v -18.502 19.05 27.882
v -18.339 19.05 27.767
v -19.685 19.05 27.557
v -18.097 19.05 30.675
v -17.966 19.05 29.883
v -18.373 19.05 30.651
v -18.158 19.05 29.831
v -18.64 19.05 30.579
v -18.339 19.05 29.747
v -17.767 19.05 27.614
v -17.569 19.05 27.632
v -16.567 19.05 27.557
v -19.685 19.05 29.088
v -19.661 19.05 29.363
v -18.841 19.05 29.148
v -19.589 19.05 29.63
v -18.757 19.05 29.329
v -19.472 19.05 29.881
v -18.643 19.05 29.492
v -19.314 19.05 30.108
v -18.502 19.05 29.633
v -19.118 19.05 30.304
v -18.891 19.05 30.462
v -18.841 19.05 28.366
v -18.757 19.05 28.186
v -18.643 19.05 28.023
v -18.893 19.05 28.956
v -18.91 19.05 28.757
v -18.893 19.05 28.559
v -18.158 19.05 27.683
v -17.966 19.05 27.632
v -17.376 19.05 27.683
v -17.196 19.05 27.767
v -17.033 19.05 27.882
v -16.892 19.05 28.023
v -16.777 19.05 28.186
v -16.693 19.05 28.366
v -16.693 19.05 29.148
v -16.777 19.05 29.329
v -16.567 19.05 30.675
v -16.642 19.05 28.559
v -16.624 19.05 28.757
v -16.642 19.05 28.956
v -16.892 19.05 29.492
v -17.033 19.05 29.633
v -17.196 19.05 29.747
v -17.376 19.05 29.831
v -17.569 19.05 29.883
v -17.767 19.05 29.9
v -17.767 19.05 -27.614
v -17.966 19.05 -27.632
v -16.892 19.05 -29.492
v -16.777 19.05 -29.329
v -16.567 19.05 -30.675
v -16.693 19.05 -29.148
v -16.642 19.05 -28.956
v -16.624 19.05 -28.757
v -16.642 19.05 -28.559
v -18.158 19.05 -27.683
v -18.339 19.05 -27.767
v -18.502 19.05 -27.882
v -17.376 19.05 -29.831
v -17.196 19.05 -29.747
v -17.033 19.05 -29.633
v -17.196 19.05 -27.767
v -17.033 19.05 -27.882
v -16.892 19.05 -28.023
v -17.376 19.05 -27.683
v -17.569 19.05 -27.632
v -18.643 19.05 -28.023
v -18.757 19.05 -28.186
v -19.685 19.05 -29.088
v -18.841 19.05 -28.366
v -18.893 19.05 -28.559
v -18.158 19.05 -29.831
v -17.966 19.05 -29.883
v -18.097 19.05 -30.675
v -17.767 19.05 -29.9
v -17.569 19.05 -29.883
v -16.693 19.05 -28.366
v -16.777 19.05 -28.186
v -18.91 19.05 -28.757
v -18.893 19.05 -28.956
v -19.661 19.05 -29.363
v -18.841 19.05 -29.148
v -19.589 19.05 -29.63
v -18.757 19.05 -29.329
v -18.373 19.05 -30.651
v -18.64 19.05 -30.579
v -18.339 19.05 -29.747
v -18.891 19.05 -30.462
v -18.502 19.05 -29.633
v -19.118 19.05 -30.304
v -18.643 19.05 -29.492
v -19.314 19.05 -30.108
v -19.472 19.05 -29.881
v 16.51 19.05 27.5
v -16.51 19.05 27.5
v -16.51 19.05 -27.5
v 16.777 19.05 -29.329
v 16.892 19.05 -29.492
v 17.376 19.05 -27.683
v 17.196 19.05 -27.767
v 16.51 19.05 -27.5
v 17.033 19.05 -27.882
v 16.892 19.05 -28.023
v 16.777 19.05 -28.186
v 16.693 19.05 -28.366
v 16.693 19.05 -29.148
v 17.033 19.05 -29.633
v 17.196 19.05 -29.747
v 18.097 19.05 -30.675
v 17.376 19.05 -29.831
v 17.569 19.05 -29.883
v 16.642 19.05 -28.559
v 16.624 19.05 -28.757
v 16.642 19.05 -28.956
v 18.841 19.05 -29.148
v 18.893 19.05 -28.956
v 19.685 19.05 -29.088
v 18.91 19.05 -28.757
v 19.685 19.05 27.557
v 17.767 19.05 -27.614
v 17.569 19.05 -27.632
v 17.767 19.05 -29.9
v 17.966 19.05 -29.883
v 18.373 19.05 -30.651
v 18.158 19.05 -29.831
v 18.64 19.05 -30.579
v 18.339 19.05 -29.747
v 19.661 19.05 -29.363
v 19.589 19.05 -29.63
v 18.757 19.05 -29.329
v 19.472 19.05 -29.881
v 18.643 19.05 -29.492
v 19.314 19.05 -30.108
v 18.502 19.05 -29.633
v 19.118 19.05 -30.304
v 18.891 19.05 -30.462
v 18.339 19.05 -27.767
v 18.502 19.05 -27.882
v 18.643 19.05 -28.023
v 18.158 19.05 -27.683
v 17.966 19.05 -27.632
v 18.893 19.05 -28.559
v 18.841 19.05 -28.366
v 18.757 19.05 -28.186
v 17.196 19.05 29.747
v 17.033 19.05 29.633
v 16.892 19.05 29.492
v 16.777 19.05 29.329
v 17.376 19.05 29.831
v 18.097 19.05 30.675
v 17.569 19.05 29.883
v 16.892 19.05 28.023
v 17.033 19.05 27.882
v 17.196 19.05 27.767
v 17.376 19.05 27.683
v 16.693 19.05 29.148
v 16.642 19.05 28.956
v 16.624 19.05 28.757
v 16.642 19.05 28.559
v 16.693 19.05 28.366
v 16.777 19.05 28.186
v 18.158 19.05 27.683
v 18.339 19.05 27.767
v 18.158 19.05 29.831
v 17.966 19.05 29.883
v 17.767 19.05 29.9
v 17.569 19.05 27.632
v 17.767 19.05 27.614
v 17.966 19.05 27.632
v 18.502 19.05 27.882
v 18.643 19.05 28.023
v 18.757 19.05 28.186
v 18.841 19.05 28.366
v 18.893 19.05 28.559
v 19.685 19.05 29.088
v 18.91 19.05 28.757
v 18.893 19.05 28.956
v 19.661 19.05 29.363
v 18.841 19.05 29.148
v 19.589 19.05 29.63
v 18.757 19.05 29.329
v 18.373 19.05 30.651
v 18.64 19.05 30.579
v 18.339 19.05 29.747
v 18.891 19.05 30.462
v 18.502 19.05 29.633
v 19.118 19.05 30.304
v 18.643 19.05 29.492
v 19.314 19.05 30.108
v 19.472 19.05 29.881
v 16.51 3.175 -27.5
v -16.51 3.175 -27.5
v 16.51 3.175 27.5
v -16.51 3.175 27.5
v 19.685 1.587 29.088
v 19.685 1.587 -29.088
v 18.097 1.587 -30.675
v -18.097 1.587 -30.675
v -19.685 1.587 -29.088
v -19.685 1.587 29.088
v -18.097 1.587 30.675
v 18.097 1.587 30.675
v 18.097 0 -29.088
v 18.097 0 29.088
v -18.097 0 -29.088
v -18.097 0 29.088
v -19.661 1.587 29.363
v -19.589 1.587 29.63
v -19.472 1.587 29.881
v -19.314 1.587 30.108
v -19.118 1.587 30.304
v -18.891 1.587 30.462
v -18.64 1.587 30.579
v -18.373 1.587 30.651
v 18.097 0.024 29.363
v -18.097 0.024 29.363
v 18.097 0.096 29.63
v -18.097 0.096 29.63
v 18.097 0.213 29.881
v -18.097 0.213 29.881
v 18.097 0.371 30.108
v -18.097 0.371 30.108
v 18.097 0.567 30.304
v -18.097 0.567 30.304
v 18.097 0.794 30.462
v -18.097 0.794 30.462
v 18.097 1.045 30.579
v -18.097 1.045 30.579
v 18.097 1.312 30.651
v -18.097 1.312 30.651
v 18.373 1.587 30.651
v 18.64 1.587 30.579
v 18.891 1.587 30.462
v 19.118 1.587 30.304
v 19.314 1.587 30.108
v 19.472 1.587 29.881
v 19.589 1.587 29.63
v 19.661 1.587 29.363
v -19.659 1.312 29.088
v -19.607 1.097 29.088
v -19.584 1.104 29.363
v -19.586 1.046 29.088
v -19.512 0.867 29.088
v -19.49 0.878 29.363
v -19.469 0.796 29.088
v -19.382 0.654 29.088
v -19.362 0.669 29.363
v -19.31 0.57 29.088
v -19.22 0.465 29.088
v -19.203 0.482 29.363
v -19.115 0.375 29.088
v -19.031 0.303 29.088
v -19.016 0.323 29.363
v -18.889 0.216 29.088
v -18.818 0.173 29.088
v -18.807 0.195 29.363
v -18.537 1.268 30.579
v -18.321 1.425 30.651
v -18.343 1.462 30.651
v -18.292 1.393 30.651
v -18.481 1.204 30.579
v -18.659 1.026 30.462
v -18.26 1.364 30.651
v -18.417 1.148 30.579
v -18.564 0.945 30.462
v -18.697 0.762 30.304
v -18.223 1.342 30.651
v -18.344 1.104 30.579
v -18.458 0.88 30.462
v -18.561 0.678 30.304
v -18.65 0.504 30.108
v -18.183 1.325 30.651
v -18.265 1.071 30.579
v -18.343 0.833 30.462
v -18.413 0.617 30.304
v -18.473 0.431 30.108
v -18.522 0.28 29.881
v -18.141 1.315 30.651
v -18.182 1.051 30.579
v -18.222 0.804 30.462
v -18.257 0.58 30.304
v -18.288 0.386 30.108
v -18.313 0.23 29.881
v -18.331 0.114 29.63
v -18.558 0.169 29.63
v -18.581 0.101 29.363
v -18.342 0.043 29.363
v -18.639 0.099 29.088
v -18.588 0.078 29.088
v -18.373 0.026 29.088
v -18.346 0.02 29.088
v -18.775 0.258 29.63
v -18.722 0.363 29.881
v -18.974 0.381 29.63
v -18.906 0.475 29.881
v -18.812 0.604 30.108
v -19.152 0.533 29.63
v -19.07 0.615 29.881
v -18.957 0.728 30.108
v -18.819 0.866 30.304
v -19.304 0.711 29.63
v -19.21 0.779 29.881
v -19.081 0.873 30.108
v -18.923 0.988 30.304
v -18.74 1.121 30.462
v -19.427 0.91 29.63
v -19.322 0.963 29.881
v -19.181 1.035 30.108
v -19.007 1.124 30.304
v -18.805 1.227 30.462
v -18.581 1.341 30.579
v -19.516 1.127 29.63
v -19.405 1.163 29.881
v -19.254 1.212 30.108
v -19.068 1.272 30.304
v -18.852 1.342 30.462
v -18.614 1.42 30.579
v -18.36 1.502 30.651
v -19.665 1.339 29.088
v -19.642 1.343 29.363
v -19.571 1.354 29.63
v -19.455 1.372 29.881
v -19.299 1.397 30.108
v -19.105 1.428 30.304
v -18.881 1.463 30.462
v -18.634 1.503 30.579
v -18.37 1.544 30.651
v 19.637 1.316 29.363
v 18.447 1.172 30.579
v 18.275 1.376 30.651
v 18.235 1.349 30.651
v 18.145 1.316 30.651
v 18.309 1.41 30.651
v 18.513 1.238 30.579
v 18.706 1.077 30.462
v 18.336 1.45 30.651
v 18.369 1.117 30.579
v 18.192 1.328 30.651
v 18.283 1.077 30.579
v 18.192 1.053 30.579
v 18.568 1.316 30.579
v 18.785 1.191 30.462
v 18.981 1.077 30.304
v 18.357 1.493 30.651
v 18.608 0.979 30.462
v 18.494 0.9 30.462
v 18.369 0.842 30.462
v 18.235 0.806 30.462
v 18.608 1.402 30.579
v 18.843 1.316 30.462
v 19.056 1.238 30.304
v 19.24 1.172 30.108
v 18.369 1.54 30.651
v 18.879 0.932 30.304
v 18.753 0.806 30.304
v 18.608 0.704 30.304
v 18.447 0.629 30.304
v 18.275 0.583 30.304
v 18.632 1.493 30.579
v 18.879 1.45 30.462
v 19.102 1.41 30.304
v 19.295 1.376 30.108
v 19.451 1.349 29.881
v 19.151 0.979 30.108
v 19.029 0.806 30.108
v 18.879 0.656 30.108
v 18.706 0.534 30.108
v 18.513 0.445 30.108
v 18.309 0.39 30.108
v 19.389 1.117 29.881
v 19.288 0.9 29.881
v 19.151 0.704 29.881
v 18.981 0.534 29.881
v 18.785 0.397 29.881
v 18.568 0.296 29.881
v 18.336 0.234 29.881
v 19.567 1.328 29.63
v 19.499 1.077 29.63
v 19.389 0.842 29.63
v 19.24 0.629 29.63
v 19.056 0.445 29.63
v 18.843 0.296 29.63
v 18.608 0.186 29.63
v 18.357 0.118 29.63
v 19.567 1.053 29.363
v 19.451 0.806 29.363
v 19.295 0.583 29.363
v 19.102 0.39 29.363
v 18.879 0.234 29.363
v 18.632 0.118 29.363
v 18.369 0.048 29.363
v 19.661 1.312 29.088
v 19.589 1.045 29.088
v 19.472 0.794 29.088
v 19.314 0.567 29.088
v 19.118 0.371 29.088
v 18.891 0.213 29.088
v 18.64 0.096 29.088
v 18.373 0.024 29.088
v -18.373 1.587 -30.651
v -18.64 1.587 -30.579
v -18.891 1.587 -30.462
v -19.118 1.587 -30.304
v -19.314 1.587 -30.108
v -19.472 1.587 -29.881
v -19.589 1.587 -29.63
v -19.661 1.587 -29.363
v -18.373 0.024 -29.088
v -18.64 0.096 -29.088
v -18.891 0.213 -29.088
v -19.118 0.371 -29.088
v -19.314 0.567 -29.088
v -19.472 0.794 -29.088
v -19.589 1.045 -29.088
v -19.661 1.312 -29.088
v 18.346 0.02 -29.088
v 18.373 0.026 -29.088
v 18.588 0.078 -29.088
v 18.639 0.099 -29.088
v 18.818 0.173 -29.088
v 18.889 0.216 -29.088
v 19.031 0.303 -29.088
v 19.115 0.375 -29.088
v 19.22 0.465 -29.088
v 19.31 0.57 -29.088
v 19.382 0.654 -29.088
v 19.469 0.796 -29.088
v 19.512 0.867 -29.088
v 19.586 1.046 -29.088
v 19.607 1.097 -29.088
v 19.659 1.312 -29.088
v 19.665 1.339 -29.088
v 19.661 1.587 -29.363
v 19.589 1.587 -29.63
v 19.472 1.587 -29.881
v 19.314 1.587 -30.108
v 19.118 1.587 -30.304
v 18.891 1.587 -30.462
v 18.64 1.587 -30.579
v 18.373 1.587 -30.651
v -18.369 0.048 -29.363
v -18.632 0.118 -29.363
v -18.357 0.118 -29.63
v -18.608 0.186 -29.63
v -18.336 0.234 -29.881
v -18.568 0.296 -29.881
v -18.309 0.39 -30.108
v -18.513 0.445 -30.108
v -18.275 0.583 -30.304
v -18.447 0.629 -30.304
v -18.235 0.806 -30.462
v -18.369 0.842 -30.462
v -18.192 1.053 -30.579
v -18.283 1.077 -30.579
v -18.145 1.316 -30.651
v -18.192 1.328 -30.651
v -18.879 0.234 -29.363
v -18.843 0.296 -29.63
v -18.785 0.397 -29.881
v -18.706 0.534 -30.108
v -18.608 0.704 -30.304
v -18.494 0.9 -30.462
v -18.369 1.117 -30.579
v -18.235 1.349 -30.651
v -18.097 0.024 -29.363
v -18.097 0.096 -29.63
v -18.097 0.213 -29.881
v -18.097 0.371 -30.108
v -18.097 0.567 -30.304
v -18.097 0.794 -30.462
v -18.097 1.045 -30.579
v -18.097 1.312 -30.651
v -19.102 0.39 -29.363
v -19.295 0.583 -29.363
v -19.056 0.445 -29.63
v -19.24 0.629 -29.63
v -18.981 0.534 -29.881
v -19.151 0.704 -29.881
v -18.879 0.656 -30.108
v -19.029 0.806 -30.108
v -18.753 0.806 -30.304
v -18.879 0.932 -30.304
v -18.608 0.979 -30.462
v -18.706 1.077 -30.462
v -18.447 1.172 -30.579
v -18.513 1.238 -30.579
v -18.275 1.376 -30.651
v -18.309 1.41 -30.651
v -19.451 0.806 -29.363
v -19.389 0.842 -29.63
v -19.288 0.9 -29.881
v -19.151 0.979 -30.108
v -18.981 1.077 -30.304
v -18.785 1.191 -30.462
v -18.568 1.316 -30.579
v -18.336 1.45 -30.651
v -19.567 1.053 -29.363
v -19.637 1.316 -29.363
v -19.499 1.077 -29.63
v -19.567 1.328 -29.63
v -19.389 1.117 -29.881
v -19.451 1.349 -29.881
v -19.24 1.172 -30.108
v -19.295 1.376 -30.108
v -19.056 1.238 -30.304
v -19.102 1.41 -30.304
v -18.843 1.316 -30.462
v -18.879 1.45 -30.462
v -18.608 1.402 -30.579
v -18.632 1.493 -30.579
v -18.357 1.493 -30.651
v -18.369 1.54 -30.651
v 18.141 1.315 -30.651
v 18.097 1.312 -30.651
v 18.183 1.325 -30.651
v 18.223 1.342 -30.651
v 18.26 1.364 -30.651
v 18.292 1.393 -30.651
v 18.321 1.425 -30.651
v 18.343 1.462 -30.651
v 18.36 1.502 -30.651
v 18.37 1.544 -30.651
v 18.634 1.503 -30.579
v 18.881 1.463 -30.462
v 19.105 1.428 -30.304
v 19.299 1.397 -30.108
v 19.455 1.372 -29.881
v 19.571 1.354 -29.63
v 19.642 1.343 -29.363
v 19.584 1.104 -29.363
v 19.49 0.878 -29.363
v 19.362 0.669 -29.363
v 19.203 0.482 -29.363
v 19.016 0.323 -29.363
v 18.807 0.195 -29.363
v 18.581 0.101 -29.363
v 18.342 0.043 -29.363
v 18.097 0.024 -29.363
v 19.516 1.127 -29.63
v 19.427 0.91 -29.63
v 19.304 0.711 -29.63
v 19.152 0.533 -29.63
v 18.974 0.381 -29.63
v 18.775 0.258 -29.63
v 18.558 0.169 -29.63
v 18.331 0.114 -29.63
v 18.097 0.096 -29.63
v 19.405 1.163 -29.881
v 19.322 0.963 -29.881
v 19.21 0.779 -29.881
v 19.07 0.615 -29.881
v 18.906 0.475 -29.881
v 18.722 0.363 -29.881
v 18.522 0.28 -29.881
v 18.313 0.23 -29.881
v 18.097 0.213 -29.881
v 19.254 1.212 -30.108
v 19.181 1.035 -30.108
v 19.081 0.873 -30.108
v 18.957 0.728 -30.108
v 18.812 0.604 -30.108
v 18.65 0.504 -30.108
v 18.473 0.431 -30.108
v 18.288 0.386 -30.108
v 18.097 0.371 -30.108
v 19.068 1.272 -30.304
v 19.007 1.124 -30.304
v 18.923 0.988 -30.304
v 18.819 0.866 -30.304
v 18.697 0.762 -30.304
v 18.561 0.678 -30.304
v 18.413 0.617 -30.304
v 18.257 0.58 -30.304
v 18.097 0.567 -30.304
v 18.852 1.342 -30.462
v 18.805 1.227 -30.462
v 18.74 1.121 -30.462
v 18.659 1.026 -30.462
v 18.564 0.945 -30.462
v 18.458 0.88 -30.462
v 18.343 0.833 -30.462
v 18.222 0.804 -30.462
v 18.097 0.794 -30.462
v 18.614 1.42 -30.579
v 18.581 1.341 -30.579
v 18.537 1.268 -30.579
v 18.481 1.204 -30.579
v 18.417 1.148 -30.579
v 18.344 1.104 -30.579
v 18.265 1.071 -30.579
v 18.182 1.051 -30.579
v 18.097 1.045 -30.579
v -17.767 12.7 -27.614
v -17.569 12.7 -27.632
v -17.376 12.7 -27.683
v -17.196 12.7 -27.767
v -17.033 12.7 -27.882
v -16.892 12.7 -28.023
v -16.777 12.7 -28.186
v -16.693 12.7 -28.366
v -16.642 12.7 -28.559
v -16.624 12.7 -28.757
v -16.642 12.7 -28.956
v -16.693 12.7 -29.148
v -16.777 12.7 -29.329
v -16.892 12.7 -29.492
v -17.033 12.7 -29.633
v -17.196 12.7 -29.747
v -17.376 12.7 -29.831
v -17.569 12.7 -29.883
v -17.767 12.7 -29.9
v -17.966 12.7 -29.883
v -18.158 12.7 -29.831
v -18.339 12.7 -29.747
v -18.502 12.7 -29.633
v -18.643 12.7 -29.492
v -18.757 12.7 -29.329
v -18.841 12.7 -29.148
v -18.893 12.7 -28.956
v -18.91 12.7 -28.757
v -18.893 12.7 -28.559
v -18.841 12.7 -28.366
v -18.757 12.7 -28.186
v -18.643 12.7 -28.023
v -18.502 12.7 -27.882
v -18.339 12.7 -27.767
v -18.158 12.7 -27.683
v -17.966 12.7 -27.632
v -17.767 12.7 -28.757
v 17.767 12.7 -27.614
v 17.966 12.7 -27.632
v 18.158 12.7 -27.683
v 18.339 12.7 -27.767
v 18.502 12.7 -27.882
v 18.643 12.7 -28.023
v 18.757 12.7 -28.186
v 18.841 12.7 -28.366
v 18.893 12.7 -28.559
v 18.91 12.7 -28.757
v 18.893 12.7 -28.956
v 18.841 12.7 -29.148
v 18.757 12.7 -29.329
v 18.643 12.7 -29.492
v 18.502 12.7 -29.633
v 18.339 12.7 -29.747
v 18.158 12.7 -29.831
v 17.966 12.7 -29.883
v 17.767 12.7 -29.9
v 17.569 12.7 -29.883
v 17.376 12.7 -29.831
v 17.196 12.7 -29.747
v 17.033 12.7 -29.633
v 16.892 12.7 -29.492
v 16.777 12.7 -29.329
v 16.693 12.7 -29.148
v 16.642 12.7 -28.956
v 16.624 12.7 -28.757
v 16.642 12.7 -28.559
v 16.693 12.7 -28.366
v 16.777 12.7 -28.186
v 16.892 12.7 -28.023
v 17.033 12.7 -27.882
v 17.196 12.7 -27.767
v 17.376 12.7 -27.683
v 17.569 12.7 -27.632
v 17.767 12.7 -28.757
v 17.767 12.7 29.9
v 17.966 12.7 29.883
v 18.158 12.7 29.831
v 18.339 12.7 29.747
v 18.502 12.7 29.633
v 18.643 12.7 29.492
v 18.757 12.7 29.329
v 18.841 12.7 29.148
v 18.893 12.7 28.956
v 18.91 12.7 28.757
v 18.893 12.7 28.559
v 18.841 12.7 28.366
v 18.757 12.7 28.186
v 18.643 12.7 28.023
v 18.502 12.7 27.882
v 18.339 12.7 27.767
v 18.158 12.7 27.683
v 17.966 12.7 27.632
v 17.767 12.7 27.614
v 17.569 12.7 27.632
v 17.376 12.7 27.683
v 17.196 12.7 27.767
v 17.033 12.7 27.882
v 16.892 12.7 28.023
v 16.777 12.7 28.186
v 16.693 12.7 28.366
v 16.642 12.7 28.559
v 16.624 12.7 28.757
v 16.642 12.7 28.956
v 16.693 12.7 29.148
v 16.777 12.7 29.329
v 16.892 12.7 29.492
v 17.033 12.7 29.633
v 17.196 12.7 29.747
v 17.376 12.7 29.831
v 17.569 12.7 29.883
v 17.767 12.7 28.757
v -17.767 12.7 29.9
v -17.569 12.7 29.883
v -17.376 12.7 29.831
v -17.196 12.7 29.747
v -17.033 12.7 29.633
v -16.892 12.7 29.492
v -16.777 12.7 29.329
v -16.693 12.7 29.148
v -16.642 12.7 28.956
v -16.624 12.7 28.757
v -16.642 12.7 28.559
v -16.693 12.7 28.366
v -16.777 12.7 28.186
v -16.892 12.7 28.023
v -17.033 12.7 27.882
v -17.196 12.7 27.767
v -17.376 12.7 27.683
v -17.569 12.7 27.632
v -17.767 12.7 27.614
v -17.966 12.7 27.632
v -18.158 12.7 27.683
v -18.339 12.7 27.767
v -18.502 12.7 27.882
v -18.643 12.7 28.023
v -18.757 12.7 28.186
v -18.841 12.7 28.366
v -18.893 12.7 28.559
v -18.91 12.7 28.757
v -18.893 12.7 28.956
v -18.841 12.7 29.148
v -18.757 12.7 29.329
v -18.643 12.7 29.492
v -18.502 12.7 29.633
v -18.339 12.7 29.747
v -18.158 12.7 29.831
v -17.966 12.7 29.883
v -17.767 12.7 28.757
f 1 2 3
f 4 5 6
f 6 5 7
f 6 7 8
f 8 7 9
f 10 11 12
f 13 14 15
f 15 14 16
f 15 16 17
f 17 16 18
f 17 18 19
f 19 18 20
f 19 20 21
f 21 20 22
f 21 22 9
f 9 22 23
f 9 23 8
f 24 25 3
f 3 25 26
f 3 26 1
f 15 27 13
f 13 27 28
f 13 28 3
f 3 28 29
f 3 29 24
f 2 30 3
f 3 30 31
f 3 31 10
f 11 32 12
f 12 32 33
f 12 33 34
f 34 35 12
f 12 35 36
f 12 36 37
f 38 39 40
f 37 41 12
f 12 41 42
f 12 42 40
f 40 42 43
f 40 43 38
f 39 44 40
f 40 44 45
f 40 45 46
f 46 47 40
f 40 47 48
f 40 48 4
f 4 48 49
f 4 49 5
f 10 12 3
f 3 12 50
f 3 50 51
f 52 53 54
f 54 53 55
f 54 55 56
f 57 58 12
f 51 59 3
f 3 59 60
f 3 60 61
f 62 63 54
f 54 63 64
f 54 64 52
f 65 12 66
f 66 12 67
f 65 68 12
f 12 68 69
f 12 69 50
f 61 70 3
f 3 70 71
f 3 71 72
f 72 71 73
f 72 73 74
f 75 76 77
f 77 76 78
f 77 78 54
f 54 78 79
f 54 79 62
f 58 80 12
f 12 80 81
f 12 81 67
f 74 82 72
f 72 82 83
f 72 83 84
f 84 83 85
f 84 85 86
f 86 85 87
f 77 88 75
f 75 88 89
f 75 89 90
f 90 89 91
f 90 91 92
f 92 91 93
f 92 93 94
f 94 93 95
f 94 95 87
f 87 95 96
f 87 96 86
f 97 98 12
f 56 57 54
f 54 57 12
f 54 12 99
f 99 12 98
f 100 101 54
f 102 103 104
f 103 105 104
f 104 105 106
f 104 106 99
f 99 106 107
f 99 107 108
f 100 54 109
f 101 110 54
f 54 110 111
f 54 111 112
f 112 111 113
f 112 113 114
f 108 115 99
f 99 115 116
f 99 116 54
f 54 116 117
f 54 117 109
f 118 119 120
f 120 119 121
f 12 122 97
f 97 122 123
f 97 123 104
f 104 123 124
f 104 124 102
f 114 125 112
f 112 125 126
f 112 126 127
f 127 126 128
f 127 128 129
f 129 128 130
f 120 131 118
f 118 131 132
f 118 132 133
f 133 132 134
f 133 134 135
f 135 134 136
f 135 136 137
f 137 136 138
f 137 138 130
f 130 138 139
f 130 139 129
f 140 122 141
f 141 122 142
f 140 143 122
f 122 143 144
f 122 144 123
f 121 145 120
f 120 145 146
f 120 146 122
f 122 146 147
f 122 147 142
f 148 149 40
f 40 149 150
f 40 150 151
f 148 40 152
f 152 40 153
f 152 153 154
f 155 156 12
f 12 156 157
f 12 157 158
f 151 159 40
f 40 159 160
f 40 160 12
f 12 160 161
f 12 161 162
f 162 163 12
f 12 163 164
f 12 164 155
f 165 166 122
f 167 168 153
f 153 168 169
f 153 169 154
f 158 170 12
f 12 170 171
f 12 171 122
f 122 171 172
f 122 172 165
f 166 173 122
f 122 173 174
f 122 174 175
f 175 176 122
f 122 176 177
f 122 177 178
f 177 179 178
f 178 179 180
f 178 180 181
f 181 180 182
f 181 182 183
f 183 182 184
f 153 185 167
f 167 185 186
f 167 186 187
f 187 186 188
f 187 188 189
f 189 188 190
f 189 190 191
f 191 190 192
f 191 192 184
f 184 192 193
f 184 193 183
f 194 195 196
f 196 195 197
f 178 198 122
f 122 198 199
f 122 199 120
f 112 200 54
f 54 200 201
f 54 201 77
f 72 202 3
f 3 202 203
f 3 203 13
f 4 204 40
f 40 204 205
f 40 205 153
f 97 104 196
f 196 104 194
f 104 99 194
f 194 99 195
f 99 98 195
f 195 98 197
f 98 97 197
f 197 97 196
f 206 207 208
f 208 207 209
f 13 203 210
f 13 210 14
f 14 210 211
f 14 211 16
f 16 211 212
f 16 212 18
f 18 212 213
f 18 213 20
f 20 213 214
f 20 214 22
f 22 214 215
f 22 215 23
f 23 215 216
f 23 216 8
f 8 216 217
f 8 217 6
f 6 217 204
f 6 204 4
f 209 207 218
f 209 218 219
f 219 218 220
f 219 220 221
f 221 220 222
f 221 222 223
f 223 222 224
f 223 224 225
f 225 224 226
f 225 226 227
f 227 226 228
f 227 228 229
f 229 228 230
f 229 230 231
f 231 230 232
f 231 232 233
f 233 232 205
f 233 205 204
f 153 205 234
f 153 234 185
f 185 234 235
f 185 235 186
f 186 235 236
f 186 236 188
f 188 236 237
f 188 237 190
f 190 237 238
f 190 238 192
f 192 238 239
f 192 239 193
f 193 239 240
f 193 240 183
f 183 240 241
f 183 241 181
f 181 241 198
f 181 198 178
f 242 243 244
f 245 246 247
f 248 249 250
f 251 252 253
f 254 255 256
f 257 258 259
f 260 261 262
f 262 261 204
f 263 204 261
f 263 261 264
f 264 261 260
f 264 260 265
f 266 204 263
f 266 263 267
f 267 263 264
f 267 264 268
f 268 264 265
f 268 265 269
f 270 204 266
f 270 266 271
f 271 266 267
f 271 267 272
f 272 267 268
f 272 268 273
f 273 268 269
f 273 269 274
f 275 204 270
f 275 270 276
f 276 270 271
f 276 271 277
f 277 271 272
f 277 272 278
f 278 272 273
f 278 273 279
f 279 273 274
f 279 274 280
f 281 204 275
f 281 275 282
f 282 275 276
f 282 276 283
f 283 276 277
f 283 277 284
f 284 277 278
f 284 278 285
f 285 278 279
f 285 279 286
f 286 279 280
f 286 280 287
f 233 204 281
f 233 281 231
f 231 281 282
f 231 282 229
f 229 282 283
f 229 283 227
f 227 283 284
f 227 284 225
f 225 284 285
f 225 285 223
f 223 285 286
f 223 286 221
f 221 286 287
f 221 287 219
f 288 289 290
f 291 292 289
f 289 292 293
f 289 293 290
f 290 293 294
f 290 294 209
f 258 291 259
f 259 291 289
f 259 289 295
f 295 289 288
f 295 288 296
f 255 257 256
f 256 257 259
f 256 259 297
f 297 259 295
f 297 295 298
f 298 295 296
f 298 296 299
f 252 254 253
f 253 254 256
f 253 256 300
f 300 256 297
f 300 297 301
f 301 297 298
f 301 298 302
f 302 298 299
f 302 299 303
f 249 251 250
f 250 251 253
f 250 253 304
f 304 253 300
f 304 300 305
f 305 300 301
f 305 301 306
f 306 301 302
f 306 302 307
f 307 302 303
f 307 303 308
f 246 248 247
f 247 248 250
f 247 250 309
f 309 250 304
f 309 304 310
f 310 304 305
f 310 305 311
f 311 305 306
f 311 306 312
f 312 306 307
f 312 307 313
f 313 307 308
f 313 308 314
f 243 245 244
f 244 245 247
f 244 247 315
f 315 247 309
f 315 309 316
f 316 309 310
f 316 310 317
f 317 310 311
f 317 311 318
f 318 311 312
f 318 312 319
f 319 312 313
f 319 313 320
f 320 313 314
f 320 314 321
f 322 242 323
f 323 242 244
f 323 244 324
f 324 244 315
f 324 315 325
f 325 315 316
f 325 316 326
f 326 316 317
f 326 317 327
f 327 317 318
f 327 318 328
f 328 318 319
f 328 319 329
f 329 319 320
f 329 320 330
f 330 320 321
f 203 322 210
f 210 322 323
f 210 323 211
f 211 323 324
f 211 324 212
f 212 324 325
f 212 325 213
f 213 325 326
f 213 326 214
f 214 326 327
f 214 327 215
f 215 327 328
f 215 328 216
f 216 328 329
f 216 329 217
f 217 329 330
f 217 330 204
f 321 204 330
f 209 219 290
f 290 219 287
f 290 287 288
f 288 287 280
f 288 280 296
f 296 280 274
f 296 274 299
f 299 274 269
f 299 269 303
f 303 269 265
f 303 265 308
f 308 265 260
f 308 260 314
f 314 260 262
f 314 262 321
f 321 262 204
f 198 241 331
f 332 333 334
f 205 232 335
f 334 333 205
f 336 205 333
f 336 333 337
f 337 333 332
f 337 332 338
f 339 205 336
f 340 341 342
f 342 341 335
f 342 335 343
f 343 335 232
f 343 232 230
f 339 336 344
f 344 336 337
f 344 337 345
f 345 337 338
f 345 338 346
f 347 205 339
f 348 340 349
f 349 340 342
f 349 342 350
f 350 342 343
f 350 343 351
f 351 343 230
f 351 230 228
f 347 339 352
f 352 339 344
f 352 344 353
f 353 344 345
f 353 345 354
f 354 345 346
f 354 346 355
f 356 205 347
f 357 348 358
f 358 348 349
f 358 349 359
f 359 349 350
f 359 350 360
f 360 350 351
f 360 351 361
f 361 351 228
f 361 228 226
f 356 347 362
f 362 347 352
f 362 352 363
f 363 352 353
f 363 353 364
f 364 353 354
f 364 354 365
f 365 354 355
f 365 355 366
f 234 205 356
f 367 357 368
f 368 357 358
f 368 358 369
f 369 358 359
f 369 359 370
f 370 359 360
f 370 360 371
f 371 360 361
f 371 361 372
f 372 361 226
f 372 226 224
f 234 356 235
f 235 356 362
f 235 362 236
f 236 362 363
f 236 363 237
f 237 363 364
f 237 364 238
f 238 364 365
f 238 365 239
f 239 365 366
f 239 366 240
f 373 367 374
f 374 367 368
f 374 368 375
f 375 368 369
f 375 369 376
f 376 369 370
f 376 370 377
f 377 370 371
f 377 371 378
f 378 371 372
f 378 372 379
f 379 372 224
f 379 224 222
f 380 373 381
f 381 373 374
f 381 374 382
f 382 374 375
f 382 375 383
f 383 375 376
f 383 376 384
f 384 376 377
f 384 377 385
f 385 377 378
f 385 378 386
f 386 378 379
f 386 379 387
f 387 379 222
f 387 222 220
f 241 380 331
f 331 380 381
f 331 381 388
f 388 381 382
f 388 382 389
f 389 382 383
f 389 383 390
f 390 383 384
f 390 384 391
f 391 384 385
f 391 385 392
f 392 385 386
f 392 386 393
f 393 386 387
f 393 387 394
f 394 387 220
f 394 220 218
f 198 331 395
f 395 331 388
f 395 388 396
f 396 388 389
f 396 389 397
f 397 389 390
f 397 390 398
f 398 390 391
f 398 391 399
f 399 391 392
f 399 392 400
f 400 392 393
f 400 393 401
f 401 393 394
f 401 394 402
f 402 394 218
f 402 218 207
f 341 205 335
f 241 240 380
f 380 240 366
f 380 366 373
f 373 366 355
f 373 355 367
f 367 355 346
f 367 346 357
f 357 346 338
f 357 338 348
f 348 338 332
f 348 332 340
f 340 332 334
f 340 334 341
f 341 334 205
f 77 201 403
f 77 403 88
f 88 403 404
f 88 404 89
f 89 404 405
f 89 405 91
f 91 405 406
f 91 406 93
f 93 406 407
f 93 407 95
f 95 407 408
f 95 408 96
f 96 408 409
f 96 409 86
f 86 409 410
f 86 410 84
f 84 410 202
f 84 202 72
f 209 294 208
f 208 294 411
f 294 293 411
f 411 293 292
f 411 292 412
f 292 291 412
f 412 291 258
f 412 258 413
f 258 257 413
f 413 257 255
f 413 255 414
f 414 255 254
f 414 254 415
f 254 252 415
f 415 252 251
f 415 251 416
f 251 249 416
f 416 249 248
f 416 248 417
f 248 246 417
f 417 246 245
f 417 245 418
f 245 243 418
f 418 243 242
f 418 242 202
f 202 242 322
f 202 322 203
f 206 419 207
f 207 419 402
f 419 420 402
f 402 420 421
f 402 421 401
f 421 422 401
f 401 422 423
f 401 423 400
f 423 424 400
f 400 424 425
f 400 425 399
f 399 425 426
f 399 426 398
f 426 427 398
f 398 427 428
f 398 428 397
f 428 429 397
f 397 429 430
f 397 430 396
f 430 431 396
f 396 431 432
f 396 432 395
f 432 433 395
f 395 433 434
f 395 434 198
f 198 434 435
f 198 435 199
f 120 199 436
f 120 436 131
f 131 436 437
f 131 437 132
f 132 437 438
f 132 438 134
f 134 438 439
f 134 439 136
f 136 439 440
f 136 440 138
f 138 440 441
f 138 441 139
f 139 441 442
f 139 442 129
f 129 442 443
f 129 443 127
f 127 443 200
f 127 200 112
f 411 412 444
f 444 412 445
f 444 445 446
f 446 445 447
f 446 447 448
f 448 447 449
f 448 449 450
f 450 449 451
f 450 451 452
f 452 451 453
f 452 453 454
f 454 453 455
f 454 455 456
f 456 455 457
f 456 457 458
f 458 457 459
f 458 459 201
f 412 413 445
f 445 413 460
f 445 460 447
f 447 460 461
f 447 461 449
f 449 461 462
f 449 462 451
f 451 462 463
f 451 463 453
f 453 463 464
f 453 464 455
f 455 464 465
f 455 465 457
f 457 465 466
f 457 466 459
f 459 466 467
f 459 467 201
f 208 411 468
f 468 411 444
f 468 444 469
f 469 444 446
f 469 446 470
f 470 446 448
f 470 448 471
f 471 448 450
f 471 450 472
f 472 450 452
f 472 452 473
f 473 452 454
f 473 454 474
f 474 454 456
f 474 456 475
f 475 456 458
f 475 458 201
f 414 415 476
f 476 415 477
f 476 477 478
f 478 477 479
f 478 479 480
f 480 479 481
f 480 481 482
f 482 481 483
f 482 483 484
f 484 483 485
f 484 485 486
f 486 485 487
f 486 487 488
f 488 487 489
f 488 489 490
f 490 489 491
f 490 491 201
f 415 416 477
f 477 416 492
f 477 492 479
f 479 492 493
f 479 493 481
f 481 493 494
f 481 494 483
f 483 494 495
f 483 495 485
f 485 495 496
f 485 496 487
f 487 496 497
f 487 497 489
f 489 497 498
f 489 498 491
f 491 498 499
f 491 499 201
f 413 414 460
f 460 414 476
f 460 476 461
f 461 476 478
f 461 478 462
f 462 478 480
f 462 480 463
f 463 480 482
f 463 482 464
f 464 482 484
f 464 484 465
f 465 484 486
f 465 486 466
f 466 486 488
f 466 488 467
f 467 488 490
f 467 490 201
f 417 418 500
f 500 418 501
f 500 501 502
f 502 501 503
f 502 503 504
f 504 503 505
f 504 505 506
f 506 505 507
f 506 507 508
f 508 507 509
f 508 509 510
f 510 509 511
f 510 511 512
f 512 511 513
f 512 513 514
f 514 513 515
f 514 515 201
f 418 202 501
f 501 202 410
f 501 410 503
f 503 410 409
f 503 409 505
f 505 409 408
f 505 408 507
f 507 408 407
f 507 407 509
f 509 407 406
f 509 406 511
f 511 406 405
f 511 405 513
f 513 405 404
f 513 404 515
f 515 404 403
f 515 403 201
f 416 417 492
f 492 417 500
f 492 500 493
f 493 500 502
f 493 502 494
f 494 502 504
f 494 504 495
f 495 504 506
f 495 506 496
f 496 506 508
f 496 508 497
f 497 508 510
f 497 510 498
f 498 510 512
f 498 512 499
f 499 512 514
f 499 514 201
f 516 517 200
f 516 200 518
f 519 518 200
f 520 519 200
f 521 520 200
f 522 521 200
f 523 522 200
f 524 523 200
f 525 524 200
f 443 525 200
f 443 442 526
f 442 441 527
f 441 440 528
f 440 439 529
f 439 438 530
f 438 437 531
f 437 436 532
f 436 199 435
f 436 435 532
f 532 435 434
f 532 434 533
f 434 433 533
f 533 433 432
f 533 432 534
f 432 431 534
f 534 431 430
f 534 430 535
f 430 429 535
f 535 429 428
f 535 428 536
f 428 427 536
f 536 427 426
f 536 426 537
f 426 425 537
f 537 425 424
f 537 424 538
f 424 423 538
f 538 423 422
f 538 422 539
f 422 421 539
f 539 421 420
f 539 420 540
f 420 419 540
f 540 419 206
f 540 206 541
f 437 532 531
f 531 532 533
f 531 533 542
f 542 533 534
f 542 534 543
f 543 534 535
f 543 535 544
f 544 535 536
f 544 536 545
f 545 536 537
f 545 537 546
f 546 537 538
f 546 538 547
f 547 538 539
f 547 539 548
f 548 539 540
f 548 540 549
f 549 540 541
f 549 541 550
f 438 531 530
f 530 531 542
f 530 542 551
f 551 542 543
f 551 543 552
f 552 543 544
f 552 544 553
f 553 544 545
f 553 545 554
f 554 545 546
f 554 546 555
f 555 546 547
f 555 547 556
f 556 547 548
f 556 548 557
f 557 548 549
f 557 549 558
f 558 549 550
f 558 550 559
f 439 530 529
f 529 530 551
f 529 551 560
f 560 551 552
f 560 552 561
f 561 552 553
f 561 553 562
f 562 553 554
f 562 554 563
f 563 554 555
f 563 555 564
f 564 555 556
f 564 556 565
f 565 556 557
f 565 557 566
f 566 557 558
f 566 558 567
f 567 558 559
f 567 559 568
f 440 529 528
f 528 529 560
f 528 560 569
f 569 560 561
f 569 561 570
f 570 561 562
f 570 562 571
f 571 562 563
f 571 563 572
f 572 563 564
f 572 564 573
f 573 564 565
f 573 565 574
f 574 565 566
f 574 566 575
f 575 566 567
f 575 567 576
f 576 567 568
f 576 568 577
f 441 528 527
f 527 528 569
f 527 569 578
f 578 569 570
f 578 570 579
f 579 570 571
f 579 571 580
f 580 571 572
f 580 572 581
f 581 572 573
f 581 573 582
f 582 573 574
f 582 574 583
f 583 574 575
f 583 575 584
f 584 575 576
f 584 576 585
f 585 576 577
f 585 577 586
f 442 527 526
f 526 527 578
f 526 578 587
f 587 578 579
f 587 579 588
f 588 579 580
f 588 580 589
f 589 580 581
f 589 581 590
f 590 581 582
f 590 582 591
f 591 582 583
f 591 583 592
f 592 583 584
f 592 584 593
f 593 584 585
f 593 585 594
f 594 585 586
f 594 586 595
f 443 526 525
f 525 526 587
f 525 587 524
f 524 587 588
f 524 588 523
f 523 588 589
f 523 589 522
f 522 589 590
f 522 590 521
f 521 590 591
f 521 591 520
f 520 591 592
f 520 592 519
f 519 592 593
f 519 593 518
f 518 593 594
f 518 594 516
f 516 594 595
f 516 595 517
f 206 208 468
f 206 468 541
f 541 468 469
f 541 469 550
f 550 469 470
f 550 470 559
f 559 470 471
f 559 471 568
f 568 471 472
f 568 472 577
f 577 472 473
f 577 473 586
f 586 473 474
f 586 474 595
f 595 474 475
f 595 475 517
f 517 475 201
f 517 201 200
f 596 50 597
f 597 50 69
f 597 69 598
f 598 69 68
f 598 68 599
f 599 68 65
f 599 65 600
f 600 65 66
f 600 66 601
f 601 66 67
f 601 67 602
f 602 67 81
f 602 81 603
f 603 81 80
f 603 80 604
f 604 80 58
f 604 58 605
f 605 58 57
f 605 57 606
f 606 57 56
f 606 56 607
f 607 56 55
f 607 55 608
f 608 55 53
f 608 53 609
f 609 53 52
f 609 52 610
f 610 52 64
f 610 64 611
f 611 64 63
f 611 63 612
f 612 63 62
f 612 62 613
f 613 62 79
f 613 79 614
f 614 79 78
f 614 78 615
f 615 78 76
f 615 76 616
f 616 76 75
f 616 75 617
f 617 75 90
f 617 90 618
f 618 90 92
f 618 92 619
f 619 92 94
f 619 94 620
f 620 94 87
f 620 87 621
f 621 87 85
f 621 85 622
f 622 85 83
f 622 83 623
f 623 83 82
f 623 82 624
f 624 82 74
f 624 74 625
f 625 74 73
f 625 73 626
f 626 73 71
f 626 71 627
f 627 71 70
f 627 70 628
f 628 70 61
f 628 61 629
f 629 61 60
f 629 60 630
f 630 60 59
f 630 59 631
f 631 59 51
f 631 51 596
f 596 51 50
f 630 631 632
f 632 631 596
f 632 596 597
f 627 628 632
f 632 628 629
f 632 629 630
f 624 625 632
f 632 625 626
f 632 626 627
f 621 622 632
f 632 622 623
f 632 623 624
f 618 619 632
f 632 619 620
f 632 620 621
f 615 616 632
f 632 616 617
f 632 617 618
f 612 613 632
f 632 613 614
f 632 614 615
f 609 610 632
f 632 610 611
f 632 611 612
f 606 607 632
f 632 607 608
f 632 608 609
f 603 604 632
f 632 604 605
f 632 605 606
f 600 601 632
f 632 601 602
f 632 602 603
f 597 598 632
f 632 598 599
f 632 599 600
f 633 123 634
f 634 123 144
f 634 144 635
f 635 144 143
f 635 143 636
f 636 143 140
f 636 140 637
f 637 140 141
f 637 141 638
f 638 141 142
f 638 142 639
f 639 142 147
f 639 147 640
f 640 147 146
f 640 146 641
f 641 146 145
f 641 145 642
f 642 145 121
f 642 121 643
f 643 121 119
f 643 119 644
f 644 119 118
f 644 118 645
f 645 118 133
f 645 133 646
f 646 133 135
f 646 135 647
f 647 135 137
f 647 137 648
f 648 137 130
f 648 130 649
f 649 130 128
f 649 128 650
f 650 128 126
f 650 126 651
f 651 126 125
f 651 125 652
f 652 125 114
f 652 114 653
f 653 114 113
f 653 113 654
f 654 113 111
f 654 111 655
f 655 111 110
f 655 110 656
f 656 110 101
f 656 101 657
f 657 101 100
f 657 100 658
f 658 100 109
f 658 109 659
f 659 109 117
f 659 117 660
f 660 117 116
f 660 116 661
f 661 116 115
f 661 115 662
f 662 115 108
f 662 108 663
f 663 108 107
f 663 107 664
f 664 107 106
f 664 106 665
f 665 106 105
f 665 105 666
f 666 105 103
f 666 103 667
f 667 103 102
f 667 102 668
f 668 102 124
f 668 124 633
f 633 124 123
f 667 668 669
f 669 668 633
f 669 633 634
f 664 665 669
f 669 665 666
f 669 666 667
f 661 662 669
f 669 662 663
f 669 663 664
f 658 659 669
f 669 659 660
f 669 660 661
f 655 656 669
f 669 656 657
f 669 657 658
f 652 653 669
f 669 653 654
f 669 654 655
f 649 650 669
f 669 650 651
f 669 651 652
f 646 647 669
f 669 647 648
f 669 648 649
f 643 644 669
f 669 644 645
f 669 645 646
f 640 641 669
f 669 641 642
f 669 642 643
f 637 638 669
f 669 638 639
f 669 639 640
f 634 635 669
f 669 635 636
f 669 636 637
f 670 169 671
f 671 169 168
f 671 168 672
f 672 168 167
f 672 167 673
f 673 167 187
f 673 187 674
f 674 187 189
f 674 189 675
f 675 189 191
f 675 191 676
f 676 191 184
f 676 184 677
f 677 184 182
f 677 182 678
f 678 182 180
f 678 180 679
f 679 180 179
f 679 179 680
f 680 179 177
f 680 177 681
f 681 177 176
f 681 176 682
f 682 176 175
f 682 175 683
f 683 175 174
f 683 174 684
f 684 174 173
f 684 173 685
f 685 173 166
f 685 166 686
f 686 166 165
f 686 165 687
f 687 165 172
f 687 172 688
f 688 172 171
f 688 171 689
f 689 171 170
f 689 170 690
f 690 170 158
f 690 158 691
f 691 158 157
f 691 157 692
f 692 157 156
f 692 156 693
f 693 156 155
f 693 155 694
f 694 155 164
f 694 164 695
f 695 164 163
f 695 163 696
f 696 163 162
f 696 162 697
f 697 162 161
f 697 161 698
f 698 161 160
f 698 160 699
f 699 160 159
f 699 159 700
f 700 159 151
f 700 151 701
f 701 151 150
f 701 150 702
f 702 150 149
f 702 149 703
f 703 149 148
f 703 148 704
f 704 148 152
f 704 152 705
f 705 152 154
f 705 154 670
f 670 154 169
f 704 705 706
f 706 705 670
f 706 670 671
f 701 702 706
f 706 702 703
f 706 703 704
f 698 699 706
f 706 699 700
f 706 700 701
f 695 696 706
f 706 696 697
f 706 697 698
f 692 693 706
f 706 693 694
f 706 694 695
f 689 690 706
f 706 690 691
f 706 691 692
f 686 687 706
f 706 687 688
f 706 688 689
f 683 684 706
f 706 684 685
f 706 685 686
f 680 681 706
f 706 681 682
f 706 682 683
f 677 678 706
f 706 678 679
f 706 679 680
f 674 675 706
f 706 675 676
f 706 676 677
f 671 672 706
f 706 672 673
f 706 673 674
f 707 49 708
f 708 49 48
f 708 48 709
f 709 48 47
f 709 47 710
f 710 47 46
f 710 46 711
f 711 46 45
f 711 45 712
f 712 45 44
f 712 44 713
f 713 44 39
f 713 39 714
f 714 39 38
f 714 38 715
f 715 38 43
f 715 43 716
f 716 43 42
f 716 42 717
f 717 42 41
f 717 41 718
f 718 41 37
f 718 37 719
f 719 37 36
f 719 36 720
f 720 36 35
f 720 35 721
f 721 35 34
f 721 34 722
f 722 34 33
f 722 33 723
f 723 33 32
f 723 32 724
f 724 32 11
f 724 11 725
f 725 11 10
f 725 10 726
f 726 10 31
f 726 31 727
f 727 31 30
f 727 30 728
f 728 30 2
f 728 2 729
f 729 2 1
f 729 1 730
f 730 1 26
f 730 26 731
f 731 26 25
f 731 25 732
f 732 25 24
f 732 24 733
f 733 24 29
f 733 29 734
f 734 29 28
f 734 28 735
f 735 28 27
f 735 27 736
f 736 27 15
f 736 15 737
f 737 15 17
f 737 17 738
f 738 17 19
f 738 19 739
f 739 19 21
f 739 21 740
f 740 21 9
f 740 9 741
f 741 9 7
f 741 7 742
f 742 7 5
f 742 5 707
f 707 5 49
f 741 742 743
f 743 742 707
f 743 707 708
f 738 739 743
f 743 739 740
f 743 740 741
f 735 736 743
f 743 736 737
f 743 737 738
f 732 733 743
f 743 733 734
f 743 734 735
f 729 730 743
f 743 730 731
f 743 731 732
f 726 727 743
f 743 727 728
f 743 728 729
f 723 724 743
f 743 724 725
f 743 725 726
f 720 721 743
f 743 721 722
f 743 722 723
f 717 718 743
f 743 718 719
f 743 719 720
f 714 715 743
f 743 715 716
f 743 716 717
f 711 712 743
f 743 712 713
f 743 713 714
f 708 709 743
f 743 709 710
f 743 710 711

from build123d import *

# Parameters (mm, degrees)
SKETCH1_W          = 33.02
SKETCH1_H          = 55
BASE_DEPTH         = 3.175
SKETCH3_W          = 39.37
SKETCH3_H          = 61.35
SKETCH3_W_2        = 33.02
SKETCH3_H_2        = 55
OUTER_CASING_DEPTH = 19.05
FILLET1_R          = 1.5875
SKETCH5_R          = 1.143
CUT_EXTRUDE5_DEPTH = 6.35


with BuildPart() as part:
    # Sketch1 → Base (new body)
    with BuildSketch(Plane(origin=(0, 0, 0), x_dir=(1, 0, 0), z_dir=(0, 1, 0))):
        Rectangle(SKETCH1_W, SKETCH1_H)
        Polygon((-16.51, 27.5), (16.51, 27.5), (16.51, -27.5), align=None)
    extrude(amount=BASE_DEPTH)

    # Sketch3 → Outer-Casing (add)
    with BuildSketch(Plane.XZ):
        Rectangle(SKETCH3_W, SKETCH3_H)
        Rectangle(SKETCH3_W_2, SKETCH3_H_2, mode=Mode.SUBTRACT)
    extrude(amount=-OUTER_CASING_DEPTH)

    # Fillet1
    fillet1_edges = [part.edges().sort_by_distance(p)[0] for p in [
        (19.685, 9.525, 30.675),
        (19.685, 9.525, -30.675),
        (-19.685, 9.525, -30.675),
        (-19.685, 9.525, 30.675),
        (19.685, 0, 0),
        (0, 0, 30.675),
        (-19.685, 0, 0),
        (0, 0, -30.675),
    ]]
    fillet(fillet1_edges, radius=FILLET1_R)

    # Sketch5 → Cut-Extrude5 (cut)
    with BuildSketch(Plane(origin=(0, 19.05, 0), x_dir=(1, 0, 0), z_dir=(0, 1, 0))):
        with Locations(Location((-17.767235857, 28.757235857, 0), (0, 0, 270))):
            Circle(SKETCH5_R)
        with Locations(Location((-17.767235857, -28.757235857, 0), (0, 0, 270))):
            Circle(SKETCH5_R)
        with Locations(Location((17.767235857, -28.757235857, 0), (0, 0, 270))):
            Circle(SKETCH5_R)
        with Locations(Location((17.767235857, 28.757235857, 0), (0, 0, 270))):
            Circle(SKETCH5_R)
    extrude(amount=-CUT_EXTRUDE5_DEPTH, mode=Mode.SUBTRACT)


solid = part.part
